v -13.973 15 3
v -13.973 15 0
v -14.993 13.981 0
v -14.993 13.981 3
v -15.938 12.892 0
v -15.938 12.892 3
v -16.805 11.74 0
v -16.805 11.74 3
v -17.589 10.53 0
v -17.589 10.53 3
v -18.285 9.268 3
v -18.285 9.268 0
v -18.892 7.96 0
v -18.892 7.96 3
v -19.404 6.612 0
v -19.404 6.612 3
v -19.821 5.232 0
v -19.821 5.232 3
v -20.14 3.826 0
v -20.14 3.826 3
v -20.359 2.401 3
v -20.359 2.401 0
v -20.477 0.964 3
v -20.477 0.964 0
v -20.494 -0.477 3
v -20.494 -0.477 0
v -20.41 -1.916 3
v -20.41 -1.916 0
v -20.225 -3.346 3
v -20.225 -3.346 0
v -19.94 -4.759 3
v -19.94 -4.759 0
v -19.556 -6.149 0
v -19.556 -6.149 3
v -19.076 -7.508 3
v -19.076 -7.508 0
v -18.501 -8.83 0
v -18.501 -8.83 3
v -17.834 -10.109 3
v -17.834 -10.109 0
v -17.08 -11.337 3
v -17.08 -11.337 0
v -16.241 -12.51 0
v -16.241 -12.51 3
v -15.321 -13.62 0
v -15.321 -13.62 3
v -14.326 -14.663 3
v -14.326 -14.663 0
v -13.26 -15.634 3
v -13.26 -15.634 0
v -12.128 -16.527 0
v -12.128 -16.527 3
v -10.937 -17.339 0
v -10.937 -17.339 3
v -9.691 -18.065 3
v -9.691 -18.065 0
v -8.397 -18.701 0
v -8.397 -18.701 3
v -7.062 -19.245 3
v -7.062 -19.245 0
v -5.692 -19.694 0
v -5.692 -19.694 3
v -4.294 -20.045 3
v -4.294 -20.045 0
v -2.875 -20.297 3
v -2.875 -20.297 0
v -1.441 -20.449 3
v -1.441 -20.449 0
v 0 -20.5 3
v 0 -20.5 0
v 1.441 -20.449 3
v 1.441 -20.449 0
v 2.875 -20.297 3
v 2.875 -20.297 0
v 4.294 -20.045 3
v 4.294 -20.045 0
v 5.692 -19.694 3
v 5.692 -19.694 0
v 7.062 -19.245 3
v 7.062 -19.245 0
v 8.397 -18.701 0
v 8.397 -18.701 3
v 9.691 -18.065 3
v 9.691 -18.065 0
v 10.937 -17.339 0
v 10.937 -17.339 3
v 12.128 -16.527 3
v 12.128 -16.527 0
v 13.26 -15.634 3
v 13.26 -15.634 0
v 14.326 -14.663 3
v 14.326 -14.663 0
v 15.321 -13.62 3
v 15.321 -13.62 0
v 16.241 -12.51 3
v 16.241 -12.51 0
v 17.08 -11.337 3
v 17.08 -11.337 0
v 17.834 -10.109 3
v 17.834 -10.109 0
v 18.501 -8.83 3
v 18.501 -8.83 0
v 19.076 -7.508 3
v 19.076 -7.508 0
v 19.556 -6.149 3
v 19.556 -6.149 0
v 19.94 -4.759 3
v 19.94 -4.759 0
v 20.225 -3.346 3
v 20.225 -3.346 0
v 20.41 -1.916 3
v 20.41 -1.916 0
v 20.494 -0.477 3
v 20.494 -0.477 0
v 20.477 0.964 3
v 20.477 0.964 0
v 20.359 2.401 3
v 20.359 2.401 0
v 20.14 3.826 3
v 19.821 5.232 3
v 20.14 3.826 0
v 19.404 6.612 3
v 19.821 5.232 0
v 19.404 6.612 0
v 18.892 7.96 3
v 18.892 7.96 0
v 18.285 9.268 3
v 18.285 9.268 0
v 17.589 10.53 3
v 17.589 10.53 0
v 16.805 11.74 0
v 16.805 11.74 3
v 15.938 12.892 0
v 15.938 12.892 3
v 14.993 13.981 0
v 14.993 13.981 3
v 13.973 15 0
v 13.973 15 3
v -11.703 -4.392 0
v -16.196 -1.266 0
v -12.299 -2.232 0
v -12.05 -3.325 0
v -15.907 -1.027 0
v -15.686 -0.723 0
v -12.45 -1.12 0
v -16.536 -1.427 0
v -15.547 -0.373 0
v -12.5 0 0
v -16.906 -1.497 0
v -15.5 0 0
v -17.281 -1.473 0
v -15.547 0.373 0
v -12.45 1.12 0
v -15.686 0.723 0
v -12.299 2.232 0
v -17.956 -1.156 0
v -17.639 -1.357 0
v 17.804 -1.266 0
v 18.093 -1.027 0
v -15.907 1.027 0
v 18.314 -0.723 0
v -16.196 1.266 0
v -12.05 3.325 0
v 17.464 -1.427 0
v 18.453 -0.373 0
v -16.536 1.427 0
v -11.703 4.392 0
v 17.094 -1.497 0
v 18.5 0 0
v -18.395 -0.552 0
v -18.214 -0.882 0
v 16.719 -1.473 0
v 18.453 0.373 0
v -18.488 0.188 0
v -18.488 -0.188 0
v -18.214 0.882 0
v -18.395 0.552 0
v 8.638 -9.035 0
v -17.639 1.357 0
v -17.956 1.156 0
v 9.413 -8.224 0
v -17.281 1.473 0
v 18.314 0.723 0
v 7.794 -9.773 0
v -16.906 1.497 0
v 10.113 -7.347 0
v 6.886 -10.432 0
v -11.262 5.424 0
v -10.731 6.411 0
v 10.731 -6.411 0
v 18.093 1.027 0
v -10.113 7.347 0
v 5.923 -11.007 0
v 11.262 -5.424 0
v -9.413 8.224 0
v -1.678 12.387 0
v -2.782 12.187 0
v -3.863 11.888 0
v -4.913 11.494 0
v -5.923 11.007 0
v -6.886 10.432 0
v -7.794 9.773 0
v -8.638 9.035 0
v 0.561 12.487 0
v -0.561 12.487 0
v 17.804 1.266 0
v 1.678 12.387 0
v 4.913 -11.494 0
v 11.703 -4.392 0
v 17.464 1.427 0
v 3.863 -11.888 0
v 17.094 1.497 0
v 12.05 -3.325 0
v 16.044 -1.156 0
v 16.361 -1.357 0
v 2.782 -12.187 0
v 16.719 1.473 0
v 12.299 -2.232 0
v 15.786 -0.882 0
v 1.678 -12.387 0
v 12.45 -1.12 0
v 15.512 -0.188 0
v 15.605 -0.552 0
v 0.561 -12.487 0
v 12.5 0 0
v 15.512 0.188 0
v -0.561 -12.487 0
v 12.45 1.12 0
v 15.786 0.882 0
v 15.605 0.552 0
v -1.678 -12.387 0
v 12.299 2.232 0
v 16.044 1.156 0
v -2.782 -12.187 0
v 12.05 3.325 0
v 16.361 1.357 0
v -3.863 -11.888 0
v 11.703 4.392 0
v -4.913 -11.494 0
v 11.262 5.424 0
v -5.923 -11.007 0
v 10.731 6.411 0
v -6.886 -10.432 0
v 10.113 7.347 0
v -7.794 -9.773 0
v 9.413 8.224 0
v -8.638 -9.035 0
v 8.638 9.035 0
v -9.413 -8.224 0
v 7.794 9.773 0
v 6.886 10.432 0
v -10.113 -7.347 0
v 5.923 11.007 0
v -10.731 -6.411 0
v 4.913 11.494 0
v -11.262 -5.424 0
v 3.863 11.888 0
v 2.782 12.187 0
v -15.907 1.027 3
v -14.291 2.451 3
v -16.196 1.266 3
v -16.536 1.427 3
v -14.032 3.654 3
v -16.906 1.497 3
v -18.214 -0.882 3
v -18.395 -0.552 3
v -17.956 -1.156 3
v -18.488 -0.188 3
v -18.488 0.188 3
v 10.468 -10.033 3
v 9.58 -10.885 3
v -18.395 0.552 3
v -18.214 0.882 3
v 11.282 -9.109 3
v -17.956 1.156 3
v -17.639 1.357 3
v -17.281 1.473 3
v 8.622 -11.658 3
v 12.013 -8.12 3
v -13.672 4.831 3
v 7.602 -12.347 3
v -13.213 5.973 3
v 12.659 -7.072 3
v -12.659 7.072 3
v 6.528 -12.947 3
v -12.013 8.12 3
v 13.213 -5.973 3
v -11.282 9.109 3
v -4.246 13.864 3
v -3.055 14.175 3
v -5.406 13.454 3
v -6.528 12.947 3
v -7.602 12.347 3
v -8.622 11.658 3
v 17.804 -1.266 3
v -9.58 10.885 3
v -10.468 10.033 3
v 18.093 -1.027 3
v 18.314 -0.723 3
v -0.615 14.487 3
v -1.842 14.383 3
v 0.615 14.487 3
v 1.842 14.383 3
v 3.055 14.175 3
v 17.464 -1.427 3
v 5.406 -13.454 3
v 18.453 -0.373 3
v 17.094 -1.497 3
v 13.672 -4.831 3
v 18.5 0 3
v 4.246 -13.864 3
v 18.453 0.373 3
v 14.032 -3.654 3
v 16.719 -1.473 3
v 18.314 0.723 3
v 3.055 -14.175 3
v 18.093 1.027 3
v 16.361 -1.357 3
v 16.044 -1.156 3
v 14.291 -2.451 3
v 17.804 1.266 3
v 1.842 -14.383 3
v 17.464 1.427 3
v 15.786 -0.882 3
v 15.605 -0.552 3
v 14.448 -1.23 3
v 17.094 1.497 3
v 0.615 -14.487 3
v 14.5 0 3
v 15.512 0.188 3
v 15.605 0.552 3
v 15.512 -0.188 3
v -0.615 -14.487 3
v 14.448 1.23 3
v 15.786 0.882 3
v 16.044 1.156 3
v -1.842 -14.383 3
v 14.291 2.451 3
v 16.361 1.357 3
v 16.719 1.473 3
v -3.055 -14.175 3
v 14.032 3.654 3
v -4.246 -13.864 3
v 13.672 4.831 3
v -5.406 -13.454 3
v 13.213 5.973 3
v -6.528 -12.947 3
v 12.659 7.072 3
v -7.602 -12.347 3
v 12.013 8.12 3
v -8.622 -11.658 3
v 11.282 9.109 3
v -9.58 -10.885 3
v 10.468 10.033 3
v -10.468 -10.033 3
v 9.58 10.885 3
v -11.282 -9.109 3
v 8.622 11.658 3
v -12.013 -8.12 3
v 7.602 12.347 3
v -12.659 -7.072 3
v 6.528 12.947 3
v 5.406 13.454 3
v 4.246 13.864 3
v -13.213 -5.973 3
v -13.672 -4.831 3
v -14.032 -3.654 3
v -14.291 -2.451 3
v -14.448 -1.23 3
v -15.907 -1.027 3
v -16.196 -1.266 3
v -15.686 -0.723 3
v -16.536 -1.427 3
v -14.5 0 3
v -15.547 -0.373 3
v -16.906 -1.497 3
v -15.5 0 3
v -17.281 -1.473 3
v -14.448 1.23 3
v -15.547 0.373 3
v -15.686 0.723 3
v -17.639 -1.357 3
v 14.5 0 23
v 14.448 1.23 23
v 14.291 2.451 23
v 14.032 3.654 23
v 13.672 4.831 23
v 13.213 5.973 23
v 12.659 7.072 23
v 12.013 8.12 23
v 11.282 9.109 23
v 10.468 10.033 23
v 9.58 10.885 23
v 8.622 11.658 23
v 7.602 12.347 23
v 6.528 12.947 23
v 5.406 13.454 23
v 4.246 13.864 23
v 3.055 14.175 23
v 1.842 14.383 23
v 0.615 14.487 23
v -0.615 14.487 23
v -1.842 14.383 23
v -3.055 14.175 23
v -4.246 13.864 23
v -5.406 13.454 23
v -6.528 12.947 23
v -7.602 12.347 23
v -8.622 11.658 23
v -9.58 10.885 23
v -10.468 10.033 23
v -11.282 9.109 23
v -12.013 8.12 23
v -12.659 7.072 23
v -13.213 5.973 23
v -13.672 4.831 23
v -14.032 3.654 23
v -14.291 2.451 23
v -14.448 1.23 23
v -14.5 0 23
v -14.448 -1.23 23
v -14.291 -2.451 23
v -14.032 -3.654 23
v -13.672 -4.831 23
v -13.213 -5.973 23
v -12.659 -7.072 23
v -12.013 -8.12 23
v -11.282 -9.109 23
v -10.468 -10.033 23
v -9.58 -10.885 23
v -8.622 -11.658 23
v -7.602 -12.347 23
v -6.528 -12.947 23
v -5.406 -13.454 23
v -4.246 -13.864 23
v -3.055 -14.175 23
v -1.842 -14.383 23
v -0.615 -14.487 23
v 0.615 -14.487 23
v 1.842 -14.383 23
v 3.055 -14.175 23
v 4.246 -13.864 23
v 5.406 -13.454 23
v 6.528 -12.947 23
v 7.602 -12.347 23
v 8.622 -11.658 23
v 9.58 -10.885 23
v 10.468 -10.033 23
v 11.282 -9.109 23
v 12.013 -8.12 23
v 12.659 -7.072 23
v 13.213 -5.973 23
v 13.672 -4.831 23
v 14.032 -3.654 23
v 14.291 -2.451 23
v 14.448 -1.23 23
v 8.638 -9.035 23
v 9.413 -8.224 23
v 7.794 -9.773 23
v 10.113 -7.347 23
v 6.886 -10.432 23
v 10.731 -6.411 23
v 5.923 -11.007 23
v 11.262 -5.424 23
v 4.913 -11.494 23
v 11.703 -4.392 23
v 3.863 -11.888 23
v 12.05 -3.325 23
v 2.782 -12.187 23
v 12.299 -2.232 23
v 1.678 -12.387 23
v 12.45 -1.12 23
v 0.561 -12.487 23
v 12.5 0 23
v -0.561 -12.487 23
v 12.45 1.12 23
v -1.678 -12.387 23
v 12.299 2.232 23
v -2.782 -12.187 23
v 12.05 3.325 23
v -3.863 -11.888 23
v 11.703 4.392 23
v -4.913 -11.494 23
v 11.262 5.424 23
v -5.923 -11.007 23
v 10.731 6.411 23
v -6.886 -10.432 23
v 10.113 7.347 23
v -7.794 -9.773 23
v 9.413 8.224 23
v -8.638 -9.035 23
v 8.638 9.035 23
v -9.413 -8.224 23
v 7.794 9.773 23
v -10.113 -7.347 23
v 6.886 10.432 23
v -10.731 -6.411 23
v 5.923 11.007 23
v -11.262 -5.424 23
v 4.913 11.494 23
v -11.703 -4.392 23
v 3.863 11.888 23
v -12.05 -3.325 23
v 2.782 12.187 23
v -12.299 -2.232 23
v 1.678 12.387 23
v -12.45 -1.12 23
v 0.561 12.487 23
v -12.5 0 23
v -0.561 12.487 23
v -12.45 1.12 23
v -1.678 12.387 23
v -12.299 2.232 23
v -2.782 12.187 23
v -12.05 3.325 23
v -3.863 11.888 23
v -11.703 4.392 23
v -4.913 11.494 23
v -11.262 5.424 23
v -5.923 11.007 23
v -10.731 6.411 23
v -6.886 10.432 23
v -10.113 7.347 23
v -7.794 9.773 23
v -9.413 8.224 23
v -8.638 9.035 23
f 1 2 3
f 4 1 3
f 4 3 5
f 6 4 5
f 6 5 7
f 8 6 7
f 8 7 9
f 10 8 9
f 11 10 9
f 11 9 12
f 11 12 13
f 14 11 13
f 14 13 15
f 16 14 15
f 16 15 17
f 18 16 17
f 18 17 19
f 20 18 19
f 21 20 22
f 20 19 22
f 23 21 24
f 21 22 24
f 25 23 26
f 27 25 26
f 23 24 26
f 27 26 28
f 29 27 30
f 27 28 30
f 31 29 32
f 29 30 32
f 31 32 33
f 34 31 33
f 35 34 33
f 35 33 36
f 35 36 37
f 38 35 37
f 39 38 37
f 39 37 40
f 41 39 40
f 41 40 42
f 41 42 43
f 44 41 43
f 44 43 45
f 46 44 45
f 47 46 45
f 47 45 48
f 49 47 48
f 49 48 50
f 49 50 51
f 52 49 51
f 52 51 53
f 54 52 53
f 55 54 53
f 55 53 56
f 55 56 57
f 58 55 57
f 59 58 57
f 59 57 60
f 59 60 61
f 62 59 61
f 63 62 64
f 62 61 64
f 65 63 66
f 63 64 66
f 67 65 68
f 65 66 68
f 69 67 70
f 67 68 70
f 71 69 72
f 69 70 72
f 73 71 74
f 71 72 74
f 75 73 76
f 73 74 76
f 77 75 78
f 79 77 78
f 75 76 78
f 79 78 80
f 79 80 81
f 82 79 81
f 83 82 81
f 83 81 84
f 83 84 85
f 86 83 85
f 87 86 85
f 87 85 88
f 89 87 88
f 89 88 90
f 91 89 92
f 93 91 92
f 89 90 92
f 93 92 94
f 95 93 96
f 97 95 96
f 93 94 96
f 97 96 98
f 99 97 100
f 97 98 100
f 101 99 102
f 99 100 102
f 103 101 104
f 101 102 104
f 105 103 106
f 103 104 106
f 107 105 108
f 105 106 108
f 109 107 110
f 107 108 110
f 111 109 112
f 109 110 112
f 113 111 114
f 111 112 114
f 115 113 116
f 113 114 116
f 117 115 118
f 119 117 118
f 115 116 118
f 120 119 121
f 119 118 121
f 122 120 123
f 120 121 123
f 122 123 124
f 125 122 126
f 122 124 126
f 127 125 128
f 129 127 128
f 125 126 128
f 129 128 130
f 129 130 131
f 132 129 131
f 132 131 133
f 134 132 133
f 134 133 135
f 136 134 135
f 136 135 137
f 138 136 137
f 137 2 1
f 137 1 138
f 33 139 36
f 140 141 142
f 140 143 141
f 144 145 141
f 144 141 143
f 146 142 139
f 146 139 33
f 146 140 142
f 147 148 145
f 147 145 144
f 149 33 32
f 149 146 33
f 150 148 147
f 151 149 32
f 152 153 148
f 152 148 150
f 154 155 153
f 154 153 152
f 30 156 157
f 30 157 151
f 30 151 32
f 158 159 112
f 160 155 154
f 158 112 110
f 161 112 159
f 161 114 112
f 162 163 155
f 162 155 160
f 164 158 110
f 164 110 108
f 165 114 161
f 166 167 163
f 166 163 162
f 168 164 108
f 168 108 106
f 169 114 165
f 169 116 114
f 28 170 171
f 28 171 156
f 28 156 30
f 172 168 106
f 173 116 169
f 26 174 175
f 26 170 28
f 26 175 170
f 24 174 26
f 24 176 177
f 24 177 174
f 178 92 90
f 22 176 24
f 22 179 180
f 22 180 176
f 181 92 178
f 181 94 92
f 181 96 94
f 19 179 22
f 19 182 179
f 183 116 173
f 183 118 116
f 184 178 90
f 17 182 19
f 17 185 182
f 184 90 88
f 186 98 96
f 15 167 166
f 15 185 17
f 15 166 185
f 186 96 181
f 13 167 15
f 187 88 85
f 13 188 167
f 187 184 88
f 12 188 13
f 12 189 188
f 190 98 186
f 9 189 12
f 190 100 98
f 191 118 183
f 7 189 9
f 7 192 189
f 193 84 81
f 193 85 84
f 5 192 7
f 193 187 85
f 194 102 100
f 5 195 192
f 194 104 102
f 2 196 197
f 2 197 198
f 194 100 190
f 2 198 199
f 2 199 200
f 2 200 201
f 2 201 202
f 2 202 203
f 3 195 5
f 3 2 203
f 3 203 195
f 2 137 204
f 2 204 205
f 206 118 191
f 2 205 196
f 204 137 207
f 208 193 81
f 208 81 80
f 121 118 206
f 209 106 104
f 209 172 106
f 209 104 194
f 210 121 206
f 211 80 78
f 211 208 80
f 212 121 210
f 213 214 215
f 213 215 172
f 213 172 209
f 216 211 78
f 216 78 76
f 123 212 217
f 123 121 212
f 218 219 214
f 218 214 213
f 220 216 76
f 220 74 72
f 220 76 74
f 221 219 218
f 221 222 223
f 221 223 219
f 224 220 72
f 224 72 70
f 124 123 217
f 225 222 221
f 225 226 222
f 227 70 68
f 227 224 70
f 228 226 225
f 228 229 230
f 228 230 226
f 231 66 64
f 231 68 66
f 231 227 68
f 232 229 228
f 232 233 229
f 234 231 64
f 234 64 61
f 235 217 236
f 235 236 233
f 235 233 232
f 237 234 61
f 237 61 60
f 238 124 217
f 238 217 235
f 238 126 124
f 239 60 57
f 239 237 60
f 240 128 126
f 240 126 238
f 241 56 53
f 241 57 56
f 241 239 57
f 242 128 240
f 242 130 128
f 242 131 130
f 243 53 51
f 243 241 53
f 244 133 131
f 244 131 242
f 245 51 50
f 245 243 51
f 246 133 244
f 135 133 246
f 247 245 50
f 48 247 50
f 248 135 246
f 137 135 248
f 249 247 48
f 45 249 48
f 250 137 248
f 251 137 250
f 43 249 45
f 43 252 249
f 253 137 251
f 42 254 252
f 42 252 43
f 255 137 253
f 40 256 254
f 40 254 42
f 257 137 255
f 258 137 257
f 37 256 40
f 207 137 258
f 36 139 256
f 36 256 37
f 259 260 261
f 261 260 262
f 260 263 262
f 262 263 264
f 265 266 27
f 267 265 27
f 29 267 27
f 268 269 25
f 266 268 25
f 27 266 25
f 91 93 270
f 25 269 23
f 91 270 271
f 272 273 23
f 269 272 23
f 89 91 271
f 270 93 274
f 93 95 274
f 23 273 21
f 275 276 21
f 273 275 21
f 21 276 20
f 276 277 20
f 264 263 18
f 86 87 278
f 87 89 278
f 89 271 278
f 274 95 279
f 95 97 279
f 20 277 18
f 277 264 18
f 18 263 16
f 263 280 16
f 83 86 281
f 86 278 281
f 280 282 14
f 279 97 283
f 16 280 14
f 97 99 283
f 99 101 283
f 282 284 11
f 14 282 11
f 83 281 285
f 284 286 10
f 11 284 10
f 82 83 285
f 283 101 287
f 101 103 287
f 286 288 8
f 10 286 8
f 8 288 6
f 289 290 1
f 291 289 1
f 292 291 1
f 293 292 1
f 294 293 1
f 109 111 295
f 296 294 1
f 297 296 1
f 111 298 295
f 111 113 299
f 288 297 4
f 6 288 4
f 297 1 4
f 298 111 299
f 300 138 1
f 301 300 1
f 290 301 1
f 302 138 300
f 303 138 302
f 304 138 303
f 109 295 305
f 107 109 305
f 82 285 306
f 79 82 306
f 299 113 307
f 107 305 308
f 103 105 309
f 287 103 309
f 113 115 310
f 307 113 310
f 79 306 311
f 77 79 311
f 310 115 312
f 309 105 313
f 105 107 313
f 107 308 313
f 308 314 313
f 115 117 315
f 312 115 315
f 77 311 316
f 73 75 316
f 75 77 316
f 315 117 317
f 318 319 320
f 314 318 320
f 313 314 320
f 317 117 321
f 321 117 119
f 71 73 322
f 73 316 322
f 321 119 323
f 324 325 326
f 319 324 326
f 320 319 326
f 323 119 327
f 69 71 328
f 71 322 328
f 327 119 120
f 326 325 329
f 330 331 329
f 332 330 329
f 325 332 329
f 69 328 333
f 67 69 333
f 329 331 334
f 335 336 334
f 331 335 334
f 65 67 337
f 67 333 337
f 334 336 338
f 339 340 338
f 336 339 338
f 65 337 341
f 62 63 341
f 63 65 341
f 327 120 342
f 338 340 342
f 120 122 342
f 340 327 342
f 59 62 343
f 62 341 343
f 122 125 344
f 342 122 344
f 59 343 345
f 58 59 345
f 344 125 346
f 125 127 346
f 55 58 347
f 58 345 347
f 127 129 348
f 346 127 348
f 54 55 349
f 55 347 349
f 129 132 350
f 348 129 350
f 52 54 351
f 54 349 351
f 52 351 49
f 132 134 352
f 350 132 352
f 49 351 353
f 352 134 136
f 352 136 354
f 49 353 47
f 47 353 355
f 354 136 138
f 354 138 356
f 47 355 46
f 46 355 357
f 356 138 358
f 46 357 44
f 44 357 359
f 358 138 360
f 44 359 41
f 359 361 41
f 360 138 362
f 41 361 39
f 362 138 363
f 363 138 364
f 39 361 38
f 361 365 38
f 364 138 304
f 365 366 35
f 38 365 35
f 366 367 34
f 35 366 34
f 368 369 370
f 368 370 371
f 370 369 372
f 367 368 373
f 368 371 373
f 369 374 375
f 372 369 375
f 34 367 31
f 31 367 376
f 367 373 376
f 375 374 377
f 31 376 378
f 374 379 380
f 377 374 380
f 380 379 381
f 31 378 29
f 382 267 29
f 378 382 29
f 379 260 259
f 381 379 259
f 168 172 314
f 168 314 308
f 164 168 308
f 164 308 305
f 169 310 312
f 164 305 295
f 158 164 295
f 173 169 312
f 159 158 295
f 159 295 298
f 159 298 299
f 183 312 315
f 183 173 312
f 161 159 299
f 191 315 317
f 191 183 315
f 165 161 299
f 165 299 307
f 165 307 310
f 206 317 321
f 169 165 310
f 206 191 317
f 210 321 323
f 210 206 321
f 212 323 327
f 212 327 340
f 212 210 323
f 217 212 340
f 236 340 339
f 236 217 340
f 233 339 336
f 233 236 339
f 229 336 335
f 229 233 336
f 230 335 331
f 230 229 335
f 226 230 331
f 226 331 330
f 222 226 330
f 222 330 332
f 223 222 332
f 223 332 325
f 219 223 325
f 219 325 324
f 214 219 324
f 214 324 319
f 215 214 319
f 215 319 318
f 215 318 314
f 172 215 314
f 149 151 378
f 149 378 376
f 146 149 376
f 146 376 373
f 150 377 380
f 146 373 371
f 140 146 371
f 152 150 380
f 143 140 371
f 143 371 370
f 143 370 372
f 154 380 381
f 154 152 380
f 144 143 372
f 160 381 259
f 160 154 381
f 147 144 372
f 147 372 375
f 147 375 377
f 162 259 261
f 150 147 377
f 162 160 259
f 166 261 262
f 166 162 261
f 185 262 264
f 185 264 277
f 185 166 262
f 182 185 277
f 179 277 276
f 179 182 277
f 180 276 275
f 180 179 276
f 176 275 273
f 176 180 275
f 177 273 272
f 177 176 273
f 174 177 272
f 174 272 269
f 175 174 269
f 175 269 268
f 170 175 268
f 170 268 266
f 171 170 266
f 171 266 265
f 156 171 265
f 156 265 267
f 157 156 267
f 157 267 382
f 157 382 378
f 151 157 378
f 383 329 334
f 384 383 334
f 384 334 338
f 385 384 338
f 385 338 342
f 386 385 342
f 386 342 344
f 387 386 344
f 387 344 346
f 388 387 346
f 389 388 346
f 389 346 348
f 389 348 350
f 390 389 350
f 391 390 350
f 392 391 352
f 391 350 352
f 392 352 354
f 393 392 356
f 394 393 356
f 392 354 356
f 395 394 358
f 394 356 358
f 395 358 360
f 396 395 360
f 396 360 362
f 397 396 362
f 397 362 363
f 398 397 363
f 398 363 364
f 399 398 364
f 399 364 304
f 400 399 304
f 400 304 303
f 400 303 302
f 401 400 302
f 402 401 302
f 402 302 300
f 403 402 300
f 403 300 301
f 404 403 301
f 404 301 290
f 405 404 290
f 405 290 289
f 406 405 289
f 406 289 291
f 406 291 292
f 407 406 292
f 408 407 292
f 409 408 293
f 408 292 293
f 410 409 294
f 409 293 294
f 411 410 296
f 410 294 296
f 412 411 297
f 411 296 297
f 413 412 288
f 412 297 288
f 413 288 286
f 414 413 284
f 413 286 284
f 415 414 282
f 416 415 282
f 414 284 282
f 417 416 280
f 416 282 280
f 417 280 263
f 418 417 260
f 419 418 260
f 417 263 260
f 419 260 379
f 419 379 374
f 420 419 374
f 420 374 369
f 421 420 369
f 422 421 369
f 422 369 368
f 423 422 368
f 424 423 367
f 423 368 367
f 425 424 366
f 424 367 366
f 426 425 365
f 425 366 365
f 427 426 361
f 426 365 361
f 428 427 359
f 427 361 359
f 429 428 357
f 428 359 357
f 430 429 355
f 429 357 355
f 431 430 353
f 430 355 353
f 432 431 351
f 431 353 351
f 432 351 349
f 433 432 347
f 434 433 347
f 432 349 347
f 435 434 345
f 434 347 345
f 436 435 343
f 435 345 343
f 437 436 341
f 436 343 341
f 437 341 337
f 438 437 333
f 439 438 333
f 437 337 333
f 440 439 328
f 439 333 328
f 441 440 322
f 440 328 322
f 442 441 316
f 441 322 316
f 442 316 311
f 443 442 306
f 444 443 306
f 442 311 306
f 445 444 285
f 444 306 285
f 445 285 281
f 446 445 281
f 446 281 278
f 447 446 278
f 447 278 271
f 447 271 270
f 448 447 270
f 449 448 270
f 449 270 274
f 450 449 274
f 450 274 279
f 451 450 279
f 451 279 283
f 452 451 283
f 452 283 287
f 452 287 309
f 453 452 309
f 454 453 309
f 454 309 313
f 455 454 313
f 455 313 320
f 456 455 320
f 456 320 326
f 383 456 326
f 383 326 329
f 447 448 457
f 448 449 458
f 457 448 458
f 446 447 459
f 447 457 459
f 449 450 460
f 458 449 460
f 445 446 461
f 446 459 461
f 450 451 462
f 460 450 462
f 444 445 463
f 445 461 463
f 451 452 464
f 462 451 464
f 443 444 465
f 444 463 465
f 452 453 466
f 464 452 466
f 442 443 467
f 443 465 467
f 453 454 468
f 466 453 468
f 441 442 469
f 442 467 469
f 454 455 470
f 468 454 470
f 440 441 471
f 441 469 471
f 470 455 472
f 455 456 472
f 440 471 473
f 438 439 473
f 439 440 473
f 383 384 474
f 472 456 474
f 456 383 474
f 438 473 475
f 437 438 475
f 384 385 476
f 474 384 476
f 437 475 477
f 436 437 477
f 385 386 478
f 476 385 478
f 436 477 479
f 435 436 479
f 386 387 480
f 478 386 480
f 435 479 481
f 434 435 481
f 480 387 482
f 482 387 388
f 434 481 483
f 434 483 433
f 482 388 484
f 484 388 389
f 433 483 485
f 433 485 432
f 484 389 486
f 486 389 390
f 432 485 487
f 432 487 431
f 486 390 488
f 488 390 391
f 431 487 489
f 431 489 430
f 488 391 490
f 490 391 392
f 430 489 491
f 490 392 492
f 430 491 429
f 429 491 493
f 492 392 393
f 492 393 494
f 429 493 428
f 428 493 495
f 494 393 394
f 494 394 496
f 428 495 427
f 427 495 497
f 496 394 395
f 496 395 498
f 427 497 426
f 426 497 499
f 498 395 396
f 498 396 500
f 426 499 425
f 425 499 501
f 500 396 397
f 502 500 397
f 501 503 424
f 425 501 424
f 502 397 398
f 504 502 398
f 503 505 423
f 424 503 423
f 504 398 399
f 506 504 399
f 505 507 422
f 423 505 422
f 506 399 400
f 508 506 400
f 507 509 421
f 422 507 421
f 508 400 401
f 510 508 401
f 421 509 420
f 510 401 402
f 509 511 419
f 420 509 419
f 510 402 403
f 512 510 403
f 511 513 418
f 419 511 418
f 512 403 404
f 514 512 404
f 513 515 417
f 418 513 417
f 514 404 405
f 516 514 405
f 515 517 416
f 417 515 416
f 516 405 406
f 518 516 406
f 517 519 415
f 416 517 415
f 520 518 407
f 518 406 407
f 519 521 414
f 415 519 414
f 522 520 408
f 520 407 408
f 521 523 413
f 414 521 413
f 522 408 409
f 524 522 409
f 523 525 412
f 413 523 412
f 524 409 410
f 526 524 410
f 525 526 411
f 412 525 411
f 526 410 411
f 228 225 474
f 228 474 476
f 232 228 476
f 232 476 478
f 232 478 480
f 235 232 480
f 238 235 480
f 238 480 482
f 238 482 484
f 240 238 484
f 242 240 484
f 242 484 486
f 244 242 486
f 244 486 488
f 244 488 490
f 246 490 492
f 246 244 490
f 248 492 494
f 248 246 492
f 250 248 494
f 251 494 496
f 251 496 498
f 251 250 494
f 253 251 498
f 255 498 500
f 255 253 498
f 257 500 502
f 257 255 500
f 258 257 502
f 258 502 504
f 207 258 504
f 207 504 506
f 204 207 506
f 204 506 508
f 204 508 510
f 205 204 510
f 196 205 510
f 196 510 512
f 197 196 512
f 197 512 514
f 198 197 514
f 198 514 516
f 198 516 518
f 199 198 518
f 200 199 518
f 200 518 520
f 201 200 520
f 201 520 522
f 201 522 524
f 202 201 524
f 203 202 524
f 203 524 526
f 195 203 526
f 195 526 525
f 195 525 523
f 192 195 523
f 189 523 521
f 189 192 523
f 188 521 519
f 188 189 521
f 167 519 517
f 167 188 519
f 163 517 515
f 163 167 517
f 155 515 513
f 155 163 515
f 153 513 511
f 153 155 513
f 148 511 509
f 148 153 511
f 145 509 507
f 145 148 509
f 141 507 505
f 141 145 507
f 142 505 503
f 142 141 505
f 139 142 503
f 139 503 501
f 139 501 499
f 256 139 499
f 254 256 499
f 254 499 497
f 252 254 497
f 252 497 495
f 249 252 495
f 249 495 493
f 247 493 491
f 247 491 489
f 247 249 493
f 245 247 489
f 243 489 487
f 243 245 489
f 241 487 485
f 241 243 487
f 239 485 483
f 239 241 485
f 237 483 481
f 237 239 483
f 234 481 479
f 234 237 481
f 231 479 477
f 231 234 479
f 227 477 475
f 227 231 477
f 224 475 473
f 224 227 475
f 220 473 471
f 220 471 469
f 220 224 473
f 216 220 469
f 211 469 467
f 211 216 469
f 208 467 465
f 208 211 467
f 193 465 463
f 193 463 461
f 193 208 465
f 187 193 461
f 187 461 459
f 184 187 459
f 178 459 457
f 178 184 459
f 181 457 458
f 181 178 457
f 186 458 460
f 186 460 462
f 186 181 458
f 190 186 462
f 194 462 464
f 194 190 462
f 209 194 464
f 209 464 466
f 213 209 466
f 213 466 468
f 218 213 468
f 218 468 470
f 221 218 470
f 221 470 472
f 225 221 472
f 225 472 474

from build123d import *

# Parameters (mm, degrees)
SKETCH_R      = 12.5
SKETCH_R_2    = 1.5
PAD_DEPTH     = 3
SKETCH001_R   = 14.5
SKETCH001_R_2 = 12.5
PAD001_DEPTH  = 20


with BuildPart() as part:
    # Sketch → Pad (new body)
    with BuildSketch(Plane.XY):
        with BuildLine():
            ThreePointArc((-13.973189, 15), (0, -20.5), (13.973189, 15))
            Line((-13.973189, 15), (13.973189, 15))
        make_face()
        Circle(SKETCH_R, mode=Mode.SUBTRACT)
        with Locations((-17, 0)):
            Circle(SKETCH_R_2, mode=Mode.SUBTRACT)
        with Locations((17, 0)):
            Circle(SKETCH_R_2, mode=Mode.SUBTRACT)
    extrude(amount=PAD_DEPTH)

    # Sketch001 → Pad001 (new body)
    with BuildSketch(Plane.XY.offset(3)):
        Circle(SKETCH001_R)
        Circle(SKETCH001_R_2, mode=Mode.SUBTRACT)
    extrude(amount=PAD001_DEPTH)


solid = part.part
